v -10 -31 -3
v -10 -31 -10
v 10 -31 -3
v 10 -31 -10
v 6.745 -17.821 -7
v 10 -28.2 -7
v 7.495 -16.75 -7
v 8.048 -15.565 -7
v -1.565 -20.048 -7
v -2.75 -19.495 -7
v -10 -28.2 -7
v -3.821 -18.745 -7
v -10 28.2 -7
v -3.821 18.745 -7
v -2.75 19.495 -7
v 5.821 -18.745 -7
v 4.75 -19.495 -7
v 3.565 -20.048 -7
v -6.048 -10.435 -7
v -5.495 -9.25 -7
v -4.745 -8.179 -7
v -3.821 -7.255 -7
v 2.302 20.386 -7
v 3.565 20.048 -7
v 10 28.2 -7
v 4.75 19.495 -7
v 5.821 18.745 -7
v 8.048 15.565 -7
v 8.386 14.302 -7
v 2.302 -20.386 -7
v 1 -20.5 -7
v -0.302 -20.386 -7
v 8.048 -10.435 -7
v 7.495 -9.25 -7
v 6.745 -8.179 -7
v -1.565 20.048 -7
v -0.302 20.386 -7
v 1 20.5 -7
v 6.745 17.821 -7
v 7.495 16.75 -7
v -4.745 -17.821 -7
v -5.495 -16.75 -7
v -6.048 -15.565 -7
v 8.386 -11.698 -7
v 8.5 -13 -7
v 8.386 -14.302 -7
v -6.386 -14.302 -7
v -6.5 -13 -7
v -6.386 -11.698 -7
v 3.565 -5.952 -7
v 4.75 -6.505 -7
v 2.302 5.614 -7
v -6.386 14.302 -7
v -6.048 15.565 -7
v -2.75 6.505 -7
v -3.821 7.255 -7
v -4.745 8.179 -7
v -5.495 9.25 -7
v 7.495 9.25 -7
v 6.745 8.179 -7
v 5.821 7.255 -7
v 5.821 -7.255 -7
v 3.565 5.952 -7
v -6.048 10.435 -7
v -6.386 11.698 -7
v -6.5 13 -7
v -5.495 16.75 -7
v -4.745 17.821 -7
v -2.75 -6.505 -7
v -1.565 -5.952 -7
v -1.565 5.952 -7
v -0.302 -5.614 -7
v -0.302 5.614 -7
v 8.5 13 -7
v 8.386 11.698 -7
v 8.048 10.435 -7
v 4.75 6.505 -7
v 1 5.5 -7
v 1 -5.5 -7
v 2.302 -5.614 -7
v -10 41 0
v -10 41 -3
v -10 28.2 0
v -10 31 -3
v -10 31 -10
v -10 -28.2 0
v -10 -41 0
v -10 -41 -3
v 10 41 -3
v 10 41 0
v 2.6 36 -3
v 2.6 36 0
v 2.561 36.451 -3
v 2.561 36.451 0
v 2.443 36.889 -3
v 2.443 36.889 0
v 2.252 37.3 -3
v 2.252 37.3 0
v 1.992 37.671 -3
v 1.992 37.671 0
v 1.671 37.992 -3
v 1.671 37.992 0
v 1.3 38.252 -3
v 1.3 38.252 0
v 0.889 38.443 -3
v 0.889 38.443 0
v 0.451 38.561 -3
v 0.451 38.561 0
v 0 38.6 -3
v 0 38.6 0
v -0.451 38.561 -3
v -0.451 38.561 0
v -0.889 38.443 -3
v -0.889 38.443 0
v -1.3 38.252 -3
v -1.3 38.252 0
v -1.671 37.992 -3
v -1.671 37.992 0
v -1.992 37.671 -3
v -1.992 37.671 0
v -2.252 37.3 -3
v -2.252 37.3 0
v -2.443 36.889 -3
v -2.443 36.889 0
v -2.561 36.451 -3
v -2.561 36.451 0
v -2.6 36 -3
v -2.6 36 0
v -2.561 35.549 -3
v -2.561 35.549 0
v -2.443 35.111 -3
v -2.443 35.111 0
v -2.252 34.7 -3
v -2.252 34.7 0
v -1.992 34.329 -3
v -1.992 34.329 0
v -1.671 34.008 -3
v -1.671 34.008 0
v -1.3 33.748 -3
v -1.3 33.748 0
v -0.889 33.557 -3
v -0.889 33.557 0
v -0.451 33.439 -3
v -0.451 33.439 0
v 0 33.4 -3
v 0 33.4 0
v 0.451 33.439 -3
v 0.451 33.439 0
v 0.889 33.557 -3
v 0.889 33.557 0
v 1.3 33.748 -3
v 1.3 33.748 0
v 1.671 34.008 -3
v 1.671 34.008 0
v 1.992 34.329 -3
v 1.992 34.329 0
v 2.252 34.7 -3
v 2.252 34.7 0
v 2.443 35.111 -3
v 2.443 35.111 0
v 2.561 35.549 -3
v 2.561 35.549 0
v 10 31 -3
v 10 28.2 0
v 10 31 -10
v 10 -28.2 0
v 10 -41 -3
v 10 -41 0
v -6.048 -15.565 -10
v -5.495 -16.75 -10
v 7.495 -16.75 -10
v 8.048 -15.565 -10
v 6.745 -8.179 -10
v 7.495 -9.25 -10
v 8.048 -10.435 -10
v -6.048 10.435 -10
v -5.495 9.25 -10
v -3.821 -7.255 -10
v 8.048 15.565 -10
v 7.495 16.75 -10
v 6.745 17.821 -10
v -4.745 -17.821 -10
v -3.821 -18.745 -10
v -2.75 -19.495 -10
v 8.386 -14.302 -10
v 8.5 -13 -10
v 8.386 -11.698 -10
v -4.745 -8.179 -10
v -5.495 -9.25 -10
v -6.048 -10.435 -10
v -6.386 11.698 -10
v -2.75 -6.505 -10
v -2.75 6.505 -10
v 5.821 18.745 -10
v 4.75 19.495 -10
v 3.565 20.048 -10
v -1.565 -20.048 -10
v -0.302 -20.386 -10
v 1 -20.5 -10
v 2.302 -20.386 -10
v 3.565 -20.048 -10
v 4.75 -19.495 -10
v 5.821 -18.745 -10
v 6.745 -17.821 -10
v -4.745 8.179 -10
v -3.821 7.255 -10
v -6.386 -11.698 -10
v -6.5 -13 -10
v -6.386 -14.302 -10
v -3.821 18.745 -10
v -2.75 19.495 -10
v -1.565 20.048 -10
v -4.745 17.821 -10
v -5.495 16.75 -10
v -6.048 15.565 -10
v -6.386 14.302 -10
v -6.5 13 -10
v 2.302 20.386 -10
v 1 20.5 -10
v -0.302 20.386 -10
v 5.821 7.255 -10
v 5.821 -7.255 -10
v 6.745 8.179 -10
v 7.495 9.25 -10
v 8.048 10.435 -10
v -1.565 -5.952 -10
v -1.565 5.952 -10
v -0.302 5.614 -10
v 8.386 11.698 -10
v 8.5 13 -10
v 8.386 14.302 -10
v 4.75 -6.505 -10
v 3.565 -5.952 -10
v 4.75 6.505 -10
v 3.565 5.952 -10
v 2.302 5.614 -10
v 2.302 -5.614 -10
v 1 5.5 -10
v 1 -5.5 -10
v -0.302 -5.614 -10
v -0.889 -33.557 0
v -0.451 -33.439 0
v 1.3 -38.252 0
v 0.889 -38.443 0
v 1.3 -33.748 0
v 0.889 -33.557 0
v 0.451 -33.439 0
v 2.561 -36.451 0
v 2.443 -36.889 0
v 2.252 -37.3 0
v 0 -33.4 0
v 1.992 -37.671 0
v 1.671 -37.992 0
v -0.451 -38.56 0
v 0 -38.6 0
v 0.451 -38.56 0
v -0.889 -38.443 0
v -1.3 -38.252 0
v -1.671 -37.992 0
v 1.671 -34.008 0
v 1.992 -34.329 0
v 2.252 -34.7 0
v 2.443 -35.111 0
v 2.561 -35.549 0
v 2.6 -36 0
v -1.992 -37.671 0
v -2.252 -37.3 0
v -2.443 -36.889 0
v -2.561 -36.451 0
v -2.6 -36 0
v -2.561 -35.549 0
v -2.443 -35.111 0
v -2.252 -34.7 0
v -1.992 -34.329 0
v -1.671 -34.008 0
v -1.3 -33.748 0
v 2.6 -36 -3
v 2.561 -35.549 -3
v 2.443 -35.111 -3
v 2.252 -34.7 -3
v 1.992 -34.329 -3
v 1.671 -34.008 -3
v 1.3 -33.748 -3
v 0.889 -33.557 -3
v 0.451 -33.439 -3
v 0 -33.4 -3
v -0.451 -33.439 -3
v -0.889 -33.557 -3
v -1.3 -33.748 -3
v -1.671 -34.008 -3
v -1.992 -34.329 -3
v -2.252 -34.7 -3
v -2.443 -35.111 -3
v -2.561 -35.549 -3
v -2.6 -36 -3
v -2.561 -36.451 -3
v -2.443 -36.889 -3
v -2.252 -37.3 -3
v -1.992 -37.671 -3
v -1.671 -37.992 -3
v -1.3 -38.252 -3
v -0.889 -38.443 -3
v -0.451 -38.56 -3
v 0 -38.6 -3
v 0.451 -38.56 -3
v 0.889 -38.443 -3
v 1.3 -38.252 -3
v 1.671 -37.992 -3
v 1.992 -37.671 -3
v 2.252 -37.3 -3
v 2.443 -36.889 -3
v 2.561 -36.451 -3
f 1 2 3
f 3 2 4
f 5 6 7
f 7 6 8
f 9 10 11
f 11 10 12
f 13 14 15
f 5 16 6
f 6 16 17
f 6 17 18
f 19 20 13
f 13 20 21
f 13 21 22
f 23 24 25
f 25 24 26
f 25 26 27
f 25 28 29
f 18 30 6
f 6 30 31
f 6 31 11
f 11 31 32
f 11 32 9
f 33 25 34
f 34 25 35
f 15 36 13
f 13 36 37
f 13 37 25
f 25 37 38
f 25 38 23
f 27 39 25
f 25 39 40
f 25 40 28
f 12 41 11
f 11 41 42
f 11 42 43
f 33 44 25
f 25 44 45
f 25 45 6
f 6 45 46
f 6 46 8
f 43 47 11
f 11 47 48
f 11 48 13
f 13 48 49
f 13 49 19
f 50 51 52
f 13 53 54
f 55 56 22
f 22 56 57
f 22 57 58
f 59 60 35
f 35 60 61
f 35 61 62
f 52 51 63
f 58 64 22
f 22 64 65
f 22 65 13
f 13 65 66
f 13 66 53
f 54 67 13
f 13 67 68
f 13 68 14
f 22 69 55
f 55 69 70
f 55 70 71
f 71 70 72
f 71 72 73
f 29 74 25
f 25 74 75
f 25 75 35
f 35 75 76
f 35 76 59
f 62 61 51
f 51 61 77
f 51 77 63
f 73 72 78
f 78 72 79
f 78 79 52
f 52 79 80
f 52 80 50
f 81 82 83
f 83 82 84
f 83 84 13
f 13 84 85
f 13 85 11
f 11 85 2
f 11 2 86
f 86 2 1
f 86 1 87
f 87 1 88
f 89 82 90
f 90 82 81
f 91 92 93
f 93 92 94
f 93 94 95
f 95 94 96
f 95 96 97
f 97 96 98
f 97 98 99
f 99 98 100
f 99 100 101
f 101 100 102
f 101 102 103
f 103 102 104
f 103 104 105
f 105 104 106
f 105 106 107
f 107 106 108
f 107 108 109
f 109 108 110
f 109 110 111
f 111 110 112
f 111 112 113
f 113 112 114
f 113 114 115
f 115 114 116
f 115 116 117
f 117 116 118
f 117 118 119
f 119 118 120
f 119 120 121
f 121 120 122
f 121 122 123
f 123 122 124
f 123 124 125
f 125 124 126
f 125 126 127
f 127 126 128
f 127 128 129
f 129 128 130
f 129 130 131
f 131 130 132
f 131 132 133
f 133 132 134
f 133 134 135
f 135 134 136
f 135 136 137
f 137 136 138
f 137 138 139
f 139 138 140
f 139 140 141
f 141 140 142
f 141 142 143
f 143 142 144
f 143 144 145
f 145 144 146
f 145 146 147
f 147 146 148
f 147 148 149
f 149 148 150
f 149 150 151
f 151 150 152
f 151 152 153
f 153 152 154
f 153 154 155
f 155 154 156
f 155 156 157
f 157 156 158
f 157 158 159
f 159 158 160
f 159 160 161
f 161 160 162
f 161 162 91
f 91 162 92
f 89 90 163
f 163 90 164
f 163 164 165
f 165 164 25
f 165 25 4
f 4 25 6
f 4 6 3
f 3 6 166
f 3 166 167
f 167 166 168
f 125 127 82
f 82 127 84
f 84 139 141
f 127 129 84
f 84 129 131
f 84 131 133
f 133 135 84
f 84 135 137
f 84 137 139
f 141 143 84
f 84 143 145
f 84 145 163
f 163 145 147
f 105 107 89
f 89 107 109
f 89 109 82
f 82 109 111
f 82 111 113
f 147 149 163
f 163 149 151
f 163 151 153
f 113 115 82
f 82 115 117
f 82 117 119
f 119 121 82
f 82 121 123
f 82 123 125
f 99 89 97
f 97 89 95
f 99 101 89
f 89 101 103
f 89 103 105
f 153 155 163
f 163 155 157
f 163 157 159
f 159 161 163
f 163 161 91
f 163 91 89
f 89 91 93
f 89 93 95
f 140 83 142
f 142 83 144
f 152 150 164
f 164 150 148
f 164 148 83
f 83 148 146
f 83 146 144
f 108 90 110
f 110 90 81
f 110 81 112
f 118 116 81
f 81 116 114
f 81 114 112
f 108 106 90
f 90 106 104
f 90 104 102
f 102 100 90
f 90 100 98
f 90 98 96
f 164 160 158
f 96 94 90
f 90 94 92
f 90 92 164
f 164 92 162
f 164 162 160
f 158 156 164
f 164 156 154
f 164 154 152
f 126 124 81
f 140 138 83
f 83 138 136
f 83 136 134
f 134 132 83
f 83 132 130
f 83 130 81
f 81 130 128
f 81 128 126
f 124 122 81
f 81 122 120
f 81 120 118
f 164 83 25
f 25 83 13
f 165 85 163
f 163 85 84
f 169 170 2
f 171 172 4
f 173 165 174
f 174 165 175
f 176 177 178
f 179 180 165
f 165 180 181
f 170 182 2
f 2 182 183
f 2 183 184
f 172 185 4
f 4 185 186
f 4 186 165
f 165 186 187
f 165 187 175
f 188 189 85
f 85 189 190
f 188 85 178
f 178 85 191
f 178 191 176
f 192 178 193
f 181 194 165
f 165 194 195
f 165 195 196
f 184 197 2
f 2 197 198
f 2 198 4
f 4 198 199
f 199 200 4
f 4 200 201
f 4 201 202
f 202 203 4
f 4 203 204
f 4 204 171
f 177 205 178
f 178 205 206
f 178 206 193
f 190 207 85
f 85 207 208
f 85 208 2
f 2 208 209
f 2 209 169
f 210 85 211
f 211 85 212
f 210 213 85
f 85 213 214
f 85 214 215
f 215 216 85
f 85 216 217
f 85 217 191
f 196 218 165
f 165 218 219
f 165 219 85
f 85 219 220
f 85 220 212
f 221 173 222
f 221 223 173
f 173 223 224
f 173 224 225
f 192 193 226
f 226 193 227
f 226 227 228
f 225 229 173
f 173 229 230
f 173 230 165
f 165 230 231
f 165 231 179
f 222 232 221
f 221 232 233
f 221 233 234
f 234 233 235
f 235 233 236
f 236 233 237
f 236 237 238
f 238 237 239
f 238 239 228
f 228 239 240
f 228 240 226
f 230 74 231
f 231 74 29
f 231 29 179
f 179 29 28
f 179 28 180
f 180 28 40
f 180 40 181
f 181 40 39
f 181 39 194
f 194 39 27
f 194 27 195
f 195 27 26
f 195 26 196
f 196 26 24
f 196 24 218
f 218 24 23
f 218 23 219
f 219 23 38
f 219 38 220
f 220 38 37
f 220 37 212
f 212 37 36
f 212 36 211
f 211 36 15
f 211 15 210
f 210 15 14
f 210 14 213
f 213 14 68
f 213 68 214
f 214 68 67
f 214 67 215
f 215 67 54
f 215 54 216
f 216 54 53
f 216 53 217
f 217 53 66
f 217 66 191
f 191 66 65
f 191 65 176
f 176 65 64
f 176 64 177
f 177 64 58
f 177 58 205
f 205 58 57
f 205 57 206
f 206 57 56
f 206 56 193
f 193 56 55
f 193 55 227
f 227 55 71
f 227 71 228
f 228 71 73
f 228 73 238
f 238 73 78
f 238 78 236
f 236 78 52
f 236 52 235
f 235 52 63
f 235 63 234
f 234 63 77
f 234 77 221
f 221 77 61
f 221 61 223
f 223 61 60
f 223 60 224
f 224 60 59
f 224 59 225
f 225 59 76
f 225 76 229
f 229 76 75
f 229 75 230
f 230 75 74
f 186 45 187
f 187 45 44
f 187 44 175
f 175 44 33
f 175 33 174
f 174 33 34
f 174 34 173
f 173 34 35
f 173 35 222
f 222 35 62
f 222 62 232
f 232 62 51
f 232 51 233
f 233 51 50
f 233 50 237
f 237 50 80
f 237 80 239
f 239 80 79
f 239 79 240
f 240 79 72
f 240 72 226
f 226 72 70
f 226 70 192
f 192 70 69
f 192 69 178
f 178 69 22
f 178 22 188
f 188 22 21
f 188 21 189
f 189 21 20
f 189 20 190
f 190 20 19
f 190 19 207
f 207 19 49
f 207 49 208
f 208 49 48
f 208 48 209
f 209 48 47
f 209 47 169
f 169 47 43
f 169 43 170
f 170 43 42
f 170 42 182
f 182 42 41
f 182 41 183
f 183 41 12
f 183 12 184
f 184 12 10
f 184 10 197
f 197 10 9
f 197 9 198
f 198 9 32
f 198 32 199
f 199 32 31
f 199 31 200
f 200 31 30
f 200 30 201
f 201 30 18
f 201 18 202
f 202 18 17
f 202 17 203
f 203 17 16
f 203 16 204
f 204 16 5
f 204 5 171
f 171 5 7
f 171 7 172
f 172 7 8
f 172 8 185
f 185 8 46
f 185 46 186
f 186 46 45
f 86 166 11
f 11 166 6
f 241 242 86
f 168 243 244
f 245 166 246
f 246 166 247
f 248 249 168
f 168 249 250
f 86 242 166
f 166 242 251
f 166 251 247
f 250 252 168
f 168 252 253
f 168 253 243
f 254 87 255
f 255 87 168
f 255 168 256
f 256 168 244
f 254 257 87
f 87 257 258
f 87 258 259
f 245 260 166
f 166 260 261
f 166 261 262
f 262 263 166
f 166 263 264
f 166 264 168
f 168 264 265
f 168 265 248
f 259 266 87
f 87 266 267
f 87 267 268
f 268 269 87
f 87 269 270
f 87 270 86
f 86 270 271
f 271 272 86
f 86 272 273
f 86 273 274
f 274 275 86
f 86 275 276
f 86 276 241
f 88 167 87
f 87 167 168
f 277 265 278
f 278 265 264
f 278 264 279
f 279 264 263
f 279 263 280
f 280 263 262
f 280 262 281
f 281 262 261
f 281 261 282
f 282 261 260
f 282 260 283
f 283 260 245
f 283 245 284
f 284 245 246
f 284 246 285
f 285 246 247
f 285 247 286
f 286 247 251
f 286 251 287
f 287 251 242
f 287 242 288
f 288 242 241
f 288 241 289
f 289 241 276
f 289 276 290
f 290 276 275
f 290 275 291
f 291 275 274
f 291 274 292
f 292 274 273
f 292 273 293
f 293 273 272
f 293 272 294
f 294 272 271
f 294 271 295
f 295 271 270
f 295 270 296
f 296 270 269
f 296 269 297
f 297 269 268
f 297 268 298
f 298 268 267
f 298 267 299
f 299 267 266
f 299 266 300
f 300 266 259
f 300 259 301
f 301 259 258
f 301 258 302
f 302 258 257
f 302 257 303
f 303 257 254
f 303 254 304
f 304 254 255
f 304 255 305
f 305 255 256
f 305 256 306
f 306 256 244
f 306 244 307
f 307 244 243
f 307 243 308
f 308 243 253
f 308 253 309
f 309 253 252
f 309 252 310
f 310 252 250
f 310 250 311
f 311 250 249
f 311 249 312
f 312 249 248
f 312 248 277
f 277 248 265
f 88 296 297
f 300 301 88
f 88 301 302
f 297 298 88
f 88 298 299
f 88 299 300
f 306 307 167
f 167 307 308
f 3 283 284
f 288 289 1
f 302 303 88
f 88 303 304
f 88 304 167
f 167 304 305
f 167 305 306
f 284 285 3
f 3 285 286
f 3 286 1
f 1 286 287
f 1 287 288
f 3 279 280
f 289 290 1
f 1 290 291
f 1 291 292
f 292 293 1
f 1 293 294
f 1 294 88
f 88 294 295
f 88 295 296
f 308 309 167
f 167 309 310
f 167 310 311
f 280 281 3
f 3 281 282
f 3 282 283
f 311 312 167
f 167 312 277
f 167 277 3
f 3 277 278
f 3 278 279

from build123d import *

# Parameters (mm, degrees)
SKETCH1_W             = 20
SKETCH1_H             = 10
SKETCH1_R             = 2.6
BOSS_EXTRUDE1_DEPTH   = 3
BOSS_EXTRUDE1_2_DEPTH = 3
SKETCH4_W             = 20
SKETCH4_H             = 62
SKETCH4_R             = 7.5
BOSS_EXTRUDE2_DEPTH   = 3
SKETCH5_W             = 20
SKETCH5_H             = 2.8
BOSS_EXTRUDE3_DEPTH   = 7


with BuildPart() as part:
    # Sketch1 → Boss-Extrude1 (new body)
    with BuildSketch(Plane.XY):
        with Locations((0, 36)):
            Rectangle(SKETCH1_W, SKETCH1_H)
        with Locations((0, 36)):
            Circle(SKETCH1_R, mode=Mode.SUBTRACT)
    extrude(amount=-BOSS_EXTRUDE1_DEPTH)



with BuildPart() as body_2:
    # Sketch1 → Boss-Extrude1 2 (new body)
    with BuildSketch(Plane.XY):
        with Locations((0, -36)):
            Rectangle(SKETCH1_W, SKETCH1_H)
        with Locations((0, -36)):
            Circle(SKETCH1_R, mode=Mode.SUBTRACT)
    extrude(amount=-BOSS_EXTRUDE1_2_DEPTH)


with BuildPart() as body_3:
    # Sketch4 → Boss-Extrude2 (new body)
    with BuildSketch(Plane.XY.offset(-7)):
        Rectangle(SKETCH4_W, SKETCH4_H)
        with Locations((1, 13)):
            Circle(SKETCH4_R, mode=Mode.SUBTRACT)
        with Locations((1, -13)):
            Circle(SKETCH4_R, mode=Mode.SUBTRACT)
    extrude(amount=-BOSS_EXTRUDE2_DEPTH)


with BuildPart() as part_1:
    add(part.part)

    add(body_2.part)  # Boss-Extrude3 merges body 2

    add(body_3.part)  # Boss-Extrude3 merges body 3
    # Sketch5 → Boss-Extrude3 (add)
    with BuildSketch(Plane.XY.offset(-7)):
        with Locations((0, 29.6)):
            Rectangle(SKETCH5_W, SKETCH5_H)
        with Locations((0, -29.6)):
            Rectangle(SKETCH5_W, SKETCH5_H)
    extrude(amount=BOSS_EXTRUDE3_DEPTH)


solid = part_1.part
